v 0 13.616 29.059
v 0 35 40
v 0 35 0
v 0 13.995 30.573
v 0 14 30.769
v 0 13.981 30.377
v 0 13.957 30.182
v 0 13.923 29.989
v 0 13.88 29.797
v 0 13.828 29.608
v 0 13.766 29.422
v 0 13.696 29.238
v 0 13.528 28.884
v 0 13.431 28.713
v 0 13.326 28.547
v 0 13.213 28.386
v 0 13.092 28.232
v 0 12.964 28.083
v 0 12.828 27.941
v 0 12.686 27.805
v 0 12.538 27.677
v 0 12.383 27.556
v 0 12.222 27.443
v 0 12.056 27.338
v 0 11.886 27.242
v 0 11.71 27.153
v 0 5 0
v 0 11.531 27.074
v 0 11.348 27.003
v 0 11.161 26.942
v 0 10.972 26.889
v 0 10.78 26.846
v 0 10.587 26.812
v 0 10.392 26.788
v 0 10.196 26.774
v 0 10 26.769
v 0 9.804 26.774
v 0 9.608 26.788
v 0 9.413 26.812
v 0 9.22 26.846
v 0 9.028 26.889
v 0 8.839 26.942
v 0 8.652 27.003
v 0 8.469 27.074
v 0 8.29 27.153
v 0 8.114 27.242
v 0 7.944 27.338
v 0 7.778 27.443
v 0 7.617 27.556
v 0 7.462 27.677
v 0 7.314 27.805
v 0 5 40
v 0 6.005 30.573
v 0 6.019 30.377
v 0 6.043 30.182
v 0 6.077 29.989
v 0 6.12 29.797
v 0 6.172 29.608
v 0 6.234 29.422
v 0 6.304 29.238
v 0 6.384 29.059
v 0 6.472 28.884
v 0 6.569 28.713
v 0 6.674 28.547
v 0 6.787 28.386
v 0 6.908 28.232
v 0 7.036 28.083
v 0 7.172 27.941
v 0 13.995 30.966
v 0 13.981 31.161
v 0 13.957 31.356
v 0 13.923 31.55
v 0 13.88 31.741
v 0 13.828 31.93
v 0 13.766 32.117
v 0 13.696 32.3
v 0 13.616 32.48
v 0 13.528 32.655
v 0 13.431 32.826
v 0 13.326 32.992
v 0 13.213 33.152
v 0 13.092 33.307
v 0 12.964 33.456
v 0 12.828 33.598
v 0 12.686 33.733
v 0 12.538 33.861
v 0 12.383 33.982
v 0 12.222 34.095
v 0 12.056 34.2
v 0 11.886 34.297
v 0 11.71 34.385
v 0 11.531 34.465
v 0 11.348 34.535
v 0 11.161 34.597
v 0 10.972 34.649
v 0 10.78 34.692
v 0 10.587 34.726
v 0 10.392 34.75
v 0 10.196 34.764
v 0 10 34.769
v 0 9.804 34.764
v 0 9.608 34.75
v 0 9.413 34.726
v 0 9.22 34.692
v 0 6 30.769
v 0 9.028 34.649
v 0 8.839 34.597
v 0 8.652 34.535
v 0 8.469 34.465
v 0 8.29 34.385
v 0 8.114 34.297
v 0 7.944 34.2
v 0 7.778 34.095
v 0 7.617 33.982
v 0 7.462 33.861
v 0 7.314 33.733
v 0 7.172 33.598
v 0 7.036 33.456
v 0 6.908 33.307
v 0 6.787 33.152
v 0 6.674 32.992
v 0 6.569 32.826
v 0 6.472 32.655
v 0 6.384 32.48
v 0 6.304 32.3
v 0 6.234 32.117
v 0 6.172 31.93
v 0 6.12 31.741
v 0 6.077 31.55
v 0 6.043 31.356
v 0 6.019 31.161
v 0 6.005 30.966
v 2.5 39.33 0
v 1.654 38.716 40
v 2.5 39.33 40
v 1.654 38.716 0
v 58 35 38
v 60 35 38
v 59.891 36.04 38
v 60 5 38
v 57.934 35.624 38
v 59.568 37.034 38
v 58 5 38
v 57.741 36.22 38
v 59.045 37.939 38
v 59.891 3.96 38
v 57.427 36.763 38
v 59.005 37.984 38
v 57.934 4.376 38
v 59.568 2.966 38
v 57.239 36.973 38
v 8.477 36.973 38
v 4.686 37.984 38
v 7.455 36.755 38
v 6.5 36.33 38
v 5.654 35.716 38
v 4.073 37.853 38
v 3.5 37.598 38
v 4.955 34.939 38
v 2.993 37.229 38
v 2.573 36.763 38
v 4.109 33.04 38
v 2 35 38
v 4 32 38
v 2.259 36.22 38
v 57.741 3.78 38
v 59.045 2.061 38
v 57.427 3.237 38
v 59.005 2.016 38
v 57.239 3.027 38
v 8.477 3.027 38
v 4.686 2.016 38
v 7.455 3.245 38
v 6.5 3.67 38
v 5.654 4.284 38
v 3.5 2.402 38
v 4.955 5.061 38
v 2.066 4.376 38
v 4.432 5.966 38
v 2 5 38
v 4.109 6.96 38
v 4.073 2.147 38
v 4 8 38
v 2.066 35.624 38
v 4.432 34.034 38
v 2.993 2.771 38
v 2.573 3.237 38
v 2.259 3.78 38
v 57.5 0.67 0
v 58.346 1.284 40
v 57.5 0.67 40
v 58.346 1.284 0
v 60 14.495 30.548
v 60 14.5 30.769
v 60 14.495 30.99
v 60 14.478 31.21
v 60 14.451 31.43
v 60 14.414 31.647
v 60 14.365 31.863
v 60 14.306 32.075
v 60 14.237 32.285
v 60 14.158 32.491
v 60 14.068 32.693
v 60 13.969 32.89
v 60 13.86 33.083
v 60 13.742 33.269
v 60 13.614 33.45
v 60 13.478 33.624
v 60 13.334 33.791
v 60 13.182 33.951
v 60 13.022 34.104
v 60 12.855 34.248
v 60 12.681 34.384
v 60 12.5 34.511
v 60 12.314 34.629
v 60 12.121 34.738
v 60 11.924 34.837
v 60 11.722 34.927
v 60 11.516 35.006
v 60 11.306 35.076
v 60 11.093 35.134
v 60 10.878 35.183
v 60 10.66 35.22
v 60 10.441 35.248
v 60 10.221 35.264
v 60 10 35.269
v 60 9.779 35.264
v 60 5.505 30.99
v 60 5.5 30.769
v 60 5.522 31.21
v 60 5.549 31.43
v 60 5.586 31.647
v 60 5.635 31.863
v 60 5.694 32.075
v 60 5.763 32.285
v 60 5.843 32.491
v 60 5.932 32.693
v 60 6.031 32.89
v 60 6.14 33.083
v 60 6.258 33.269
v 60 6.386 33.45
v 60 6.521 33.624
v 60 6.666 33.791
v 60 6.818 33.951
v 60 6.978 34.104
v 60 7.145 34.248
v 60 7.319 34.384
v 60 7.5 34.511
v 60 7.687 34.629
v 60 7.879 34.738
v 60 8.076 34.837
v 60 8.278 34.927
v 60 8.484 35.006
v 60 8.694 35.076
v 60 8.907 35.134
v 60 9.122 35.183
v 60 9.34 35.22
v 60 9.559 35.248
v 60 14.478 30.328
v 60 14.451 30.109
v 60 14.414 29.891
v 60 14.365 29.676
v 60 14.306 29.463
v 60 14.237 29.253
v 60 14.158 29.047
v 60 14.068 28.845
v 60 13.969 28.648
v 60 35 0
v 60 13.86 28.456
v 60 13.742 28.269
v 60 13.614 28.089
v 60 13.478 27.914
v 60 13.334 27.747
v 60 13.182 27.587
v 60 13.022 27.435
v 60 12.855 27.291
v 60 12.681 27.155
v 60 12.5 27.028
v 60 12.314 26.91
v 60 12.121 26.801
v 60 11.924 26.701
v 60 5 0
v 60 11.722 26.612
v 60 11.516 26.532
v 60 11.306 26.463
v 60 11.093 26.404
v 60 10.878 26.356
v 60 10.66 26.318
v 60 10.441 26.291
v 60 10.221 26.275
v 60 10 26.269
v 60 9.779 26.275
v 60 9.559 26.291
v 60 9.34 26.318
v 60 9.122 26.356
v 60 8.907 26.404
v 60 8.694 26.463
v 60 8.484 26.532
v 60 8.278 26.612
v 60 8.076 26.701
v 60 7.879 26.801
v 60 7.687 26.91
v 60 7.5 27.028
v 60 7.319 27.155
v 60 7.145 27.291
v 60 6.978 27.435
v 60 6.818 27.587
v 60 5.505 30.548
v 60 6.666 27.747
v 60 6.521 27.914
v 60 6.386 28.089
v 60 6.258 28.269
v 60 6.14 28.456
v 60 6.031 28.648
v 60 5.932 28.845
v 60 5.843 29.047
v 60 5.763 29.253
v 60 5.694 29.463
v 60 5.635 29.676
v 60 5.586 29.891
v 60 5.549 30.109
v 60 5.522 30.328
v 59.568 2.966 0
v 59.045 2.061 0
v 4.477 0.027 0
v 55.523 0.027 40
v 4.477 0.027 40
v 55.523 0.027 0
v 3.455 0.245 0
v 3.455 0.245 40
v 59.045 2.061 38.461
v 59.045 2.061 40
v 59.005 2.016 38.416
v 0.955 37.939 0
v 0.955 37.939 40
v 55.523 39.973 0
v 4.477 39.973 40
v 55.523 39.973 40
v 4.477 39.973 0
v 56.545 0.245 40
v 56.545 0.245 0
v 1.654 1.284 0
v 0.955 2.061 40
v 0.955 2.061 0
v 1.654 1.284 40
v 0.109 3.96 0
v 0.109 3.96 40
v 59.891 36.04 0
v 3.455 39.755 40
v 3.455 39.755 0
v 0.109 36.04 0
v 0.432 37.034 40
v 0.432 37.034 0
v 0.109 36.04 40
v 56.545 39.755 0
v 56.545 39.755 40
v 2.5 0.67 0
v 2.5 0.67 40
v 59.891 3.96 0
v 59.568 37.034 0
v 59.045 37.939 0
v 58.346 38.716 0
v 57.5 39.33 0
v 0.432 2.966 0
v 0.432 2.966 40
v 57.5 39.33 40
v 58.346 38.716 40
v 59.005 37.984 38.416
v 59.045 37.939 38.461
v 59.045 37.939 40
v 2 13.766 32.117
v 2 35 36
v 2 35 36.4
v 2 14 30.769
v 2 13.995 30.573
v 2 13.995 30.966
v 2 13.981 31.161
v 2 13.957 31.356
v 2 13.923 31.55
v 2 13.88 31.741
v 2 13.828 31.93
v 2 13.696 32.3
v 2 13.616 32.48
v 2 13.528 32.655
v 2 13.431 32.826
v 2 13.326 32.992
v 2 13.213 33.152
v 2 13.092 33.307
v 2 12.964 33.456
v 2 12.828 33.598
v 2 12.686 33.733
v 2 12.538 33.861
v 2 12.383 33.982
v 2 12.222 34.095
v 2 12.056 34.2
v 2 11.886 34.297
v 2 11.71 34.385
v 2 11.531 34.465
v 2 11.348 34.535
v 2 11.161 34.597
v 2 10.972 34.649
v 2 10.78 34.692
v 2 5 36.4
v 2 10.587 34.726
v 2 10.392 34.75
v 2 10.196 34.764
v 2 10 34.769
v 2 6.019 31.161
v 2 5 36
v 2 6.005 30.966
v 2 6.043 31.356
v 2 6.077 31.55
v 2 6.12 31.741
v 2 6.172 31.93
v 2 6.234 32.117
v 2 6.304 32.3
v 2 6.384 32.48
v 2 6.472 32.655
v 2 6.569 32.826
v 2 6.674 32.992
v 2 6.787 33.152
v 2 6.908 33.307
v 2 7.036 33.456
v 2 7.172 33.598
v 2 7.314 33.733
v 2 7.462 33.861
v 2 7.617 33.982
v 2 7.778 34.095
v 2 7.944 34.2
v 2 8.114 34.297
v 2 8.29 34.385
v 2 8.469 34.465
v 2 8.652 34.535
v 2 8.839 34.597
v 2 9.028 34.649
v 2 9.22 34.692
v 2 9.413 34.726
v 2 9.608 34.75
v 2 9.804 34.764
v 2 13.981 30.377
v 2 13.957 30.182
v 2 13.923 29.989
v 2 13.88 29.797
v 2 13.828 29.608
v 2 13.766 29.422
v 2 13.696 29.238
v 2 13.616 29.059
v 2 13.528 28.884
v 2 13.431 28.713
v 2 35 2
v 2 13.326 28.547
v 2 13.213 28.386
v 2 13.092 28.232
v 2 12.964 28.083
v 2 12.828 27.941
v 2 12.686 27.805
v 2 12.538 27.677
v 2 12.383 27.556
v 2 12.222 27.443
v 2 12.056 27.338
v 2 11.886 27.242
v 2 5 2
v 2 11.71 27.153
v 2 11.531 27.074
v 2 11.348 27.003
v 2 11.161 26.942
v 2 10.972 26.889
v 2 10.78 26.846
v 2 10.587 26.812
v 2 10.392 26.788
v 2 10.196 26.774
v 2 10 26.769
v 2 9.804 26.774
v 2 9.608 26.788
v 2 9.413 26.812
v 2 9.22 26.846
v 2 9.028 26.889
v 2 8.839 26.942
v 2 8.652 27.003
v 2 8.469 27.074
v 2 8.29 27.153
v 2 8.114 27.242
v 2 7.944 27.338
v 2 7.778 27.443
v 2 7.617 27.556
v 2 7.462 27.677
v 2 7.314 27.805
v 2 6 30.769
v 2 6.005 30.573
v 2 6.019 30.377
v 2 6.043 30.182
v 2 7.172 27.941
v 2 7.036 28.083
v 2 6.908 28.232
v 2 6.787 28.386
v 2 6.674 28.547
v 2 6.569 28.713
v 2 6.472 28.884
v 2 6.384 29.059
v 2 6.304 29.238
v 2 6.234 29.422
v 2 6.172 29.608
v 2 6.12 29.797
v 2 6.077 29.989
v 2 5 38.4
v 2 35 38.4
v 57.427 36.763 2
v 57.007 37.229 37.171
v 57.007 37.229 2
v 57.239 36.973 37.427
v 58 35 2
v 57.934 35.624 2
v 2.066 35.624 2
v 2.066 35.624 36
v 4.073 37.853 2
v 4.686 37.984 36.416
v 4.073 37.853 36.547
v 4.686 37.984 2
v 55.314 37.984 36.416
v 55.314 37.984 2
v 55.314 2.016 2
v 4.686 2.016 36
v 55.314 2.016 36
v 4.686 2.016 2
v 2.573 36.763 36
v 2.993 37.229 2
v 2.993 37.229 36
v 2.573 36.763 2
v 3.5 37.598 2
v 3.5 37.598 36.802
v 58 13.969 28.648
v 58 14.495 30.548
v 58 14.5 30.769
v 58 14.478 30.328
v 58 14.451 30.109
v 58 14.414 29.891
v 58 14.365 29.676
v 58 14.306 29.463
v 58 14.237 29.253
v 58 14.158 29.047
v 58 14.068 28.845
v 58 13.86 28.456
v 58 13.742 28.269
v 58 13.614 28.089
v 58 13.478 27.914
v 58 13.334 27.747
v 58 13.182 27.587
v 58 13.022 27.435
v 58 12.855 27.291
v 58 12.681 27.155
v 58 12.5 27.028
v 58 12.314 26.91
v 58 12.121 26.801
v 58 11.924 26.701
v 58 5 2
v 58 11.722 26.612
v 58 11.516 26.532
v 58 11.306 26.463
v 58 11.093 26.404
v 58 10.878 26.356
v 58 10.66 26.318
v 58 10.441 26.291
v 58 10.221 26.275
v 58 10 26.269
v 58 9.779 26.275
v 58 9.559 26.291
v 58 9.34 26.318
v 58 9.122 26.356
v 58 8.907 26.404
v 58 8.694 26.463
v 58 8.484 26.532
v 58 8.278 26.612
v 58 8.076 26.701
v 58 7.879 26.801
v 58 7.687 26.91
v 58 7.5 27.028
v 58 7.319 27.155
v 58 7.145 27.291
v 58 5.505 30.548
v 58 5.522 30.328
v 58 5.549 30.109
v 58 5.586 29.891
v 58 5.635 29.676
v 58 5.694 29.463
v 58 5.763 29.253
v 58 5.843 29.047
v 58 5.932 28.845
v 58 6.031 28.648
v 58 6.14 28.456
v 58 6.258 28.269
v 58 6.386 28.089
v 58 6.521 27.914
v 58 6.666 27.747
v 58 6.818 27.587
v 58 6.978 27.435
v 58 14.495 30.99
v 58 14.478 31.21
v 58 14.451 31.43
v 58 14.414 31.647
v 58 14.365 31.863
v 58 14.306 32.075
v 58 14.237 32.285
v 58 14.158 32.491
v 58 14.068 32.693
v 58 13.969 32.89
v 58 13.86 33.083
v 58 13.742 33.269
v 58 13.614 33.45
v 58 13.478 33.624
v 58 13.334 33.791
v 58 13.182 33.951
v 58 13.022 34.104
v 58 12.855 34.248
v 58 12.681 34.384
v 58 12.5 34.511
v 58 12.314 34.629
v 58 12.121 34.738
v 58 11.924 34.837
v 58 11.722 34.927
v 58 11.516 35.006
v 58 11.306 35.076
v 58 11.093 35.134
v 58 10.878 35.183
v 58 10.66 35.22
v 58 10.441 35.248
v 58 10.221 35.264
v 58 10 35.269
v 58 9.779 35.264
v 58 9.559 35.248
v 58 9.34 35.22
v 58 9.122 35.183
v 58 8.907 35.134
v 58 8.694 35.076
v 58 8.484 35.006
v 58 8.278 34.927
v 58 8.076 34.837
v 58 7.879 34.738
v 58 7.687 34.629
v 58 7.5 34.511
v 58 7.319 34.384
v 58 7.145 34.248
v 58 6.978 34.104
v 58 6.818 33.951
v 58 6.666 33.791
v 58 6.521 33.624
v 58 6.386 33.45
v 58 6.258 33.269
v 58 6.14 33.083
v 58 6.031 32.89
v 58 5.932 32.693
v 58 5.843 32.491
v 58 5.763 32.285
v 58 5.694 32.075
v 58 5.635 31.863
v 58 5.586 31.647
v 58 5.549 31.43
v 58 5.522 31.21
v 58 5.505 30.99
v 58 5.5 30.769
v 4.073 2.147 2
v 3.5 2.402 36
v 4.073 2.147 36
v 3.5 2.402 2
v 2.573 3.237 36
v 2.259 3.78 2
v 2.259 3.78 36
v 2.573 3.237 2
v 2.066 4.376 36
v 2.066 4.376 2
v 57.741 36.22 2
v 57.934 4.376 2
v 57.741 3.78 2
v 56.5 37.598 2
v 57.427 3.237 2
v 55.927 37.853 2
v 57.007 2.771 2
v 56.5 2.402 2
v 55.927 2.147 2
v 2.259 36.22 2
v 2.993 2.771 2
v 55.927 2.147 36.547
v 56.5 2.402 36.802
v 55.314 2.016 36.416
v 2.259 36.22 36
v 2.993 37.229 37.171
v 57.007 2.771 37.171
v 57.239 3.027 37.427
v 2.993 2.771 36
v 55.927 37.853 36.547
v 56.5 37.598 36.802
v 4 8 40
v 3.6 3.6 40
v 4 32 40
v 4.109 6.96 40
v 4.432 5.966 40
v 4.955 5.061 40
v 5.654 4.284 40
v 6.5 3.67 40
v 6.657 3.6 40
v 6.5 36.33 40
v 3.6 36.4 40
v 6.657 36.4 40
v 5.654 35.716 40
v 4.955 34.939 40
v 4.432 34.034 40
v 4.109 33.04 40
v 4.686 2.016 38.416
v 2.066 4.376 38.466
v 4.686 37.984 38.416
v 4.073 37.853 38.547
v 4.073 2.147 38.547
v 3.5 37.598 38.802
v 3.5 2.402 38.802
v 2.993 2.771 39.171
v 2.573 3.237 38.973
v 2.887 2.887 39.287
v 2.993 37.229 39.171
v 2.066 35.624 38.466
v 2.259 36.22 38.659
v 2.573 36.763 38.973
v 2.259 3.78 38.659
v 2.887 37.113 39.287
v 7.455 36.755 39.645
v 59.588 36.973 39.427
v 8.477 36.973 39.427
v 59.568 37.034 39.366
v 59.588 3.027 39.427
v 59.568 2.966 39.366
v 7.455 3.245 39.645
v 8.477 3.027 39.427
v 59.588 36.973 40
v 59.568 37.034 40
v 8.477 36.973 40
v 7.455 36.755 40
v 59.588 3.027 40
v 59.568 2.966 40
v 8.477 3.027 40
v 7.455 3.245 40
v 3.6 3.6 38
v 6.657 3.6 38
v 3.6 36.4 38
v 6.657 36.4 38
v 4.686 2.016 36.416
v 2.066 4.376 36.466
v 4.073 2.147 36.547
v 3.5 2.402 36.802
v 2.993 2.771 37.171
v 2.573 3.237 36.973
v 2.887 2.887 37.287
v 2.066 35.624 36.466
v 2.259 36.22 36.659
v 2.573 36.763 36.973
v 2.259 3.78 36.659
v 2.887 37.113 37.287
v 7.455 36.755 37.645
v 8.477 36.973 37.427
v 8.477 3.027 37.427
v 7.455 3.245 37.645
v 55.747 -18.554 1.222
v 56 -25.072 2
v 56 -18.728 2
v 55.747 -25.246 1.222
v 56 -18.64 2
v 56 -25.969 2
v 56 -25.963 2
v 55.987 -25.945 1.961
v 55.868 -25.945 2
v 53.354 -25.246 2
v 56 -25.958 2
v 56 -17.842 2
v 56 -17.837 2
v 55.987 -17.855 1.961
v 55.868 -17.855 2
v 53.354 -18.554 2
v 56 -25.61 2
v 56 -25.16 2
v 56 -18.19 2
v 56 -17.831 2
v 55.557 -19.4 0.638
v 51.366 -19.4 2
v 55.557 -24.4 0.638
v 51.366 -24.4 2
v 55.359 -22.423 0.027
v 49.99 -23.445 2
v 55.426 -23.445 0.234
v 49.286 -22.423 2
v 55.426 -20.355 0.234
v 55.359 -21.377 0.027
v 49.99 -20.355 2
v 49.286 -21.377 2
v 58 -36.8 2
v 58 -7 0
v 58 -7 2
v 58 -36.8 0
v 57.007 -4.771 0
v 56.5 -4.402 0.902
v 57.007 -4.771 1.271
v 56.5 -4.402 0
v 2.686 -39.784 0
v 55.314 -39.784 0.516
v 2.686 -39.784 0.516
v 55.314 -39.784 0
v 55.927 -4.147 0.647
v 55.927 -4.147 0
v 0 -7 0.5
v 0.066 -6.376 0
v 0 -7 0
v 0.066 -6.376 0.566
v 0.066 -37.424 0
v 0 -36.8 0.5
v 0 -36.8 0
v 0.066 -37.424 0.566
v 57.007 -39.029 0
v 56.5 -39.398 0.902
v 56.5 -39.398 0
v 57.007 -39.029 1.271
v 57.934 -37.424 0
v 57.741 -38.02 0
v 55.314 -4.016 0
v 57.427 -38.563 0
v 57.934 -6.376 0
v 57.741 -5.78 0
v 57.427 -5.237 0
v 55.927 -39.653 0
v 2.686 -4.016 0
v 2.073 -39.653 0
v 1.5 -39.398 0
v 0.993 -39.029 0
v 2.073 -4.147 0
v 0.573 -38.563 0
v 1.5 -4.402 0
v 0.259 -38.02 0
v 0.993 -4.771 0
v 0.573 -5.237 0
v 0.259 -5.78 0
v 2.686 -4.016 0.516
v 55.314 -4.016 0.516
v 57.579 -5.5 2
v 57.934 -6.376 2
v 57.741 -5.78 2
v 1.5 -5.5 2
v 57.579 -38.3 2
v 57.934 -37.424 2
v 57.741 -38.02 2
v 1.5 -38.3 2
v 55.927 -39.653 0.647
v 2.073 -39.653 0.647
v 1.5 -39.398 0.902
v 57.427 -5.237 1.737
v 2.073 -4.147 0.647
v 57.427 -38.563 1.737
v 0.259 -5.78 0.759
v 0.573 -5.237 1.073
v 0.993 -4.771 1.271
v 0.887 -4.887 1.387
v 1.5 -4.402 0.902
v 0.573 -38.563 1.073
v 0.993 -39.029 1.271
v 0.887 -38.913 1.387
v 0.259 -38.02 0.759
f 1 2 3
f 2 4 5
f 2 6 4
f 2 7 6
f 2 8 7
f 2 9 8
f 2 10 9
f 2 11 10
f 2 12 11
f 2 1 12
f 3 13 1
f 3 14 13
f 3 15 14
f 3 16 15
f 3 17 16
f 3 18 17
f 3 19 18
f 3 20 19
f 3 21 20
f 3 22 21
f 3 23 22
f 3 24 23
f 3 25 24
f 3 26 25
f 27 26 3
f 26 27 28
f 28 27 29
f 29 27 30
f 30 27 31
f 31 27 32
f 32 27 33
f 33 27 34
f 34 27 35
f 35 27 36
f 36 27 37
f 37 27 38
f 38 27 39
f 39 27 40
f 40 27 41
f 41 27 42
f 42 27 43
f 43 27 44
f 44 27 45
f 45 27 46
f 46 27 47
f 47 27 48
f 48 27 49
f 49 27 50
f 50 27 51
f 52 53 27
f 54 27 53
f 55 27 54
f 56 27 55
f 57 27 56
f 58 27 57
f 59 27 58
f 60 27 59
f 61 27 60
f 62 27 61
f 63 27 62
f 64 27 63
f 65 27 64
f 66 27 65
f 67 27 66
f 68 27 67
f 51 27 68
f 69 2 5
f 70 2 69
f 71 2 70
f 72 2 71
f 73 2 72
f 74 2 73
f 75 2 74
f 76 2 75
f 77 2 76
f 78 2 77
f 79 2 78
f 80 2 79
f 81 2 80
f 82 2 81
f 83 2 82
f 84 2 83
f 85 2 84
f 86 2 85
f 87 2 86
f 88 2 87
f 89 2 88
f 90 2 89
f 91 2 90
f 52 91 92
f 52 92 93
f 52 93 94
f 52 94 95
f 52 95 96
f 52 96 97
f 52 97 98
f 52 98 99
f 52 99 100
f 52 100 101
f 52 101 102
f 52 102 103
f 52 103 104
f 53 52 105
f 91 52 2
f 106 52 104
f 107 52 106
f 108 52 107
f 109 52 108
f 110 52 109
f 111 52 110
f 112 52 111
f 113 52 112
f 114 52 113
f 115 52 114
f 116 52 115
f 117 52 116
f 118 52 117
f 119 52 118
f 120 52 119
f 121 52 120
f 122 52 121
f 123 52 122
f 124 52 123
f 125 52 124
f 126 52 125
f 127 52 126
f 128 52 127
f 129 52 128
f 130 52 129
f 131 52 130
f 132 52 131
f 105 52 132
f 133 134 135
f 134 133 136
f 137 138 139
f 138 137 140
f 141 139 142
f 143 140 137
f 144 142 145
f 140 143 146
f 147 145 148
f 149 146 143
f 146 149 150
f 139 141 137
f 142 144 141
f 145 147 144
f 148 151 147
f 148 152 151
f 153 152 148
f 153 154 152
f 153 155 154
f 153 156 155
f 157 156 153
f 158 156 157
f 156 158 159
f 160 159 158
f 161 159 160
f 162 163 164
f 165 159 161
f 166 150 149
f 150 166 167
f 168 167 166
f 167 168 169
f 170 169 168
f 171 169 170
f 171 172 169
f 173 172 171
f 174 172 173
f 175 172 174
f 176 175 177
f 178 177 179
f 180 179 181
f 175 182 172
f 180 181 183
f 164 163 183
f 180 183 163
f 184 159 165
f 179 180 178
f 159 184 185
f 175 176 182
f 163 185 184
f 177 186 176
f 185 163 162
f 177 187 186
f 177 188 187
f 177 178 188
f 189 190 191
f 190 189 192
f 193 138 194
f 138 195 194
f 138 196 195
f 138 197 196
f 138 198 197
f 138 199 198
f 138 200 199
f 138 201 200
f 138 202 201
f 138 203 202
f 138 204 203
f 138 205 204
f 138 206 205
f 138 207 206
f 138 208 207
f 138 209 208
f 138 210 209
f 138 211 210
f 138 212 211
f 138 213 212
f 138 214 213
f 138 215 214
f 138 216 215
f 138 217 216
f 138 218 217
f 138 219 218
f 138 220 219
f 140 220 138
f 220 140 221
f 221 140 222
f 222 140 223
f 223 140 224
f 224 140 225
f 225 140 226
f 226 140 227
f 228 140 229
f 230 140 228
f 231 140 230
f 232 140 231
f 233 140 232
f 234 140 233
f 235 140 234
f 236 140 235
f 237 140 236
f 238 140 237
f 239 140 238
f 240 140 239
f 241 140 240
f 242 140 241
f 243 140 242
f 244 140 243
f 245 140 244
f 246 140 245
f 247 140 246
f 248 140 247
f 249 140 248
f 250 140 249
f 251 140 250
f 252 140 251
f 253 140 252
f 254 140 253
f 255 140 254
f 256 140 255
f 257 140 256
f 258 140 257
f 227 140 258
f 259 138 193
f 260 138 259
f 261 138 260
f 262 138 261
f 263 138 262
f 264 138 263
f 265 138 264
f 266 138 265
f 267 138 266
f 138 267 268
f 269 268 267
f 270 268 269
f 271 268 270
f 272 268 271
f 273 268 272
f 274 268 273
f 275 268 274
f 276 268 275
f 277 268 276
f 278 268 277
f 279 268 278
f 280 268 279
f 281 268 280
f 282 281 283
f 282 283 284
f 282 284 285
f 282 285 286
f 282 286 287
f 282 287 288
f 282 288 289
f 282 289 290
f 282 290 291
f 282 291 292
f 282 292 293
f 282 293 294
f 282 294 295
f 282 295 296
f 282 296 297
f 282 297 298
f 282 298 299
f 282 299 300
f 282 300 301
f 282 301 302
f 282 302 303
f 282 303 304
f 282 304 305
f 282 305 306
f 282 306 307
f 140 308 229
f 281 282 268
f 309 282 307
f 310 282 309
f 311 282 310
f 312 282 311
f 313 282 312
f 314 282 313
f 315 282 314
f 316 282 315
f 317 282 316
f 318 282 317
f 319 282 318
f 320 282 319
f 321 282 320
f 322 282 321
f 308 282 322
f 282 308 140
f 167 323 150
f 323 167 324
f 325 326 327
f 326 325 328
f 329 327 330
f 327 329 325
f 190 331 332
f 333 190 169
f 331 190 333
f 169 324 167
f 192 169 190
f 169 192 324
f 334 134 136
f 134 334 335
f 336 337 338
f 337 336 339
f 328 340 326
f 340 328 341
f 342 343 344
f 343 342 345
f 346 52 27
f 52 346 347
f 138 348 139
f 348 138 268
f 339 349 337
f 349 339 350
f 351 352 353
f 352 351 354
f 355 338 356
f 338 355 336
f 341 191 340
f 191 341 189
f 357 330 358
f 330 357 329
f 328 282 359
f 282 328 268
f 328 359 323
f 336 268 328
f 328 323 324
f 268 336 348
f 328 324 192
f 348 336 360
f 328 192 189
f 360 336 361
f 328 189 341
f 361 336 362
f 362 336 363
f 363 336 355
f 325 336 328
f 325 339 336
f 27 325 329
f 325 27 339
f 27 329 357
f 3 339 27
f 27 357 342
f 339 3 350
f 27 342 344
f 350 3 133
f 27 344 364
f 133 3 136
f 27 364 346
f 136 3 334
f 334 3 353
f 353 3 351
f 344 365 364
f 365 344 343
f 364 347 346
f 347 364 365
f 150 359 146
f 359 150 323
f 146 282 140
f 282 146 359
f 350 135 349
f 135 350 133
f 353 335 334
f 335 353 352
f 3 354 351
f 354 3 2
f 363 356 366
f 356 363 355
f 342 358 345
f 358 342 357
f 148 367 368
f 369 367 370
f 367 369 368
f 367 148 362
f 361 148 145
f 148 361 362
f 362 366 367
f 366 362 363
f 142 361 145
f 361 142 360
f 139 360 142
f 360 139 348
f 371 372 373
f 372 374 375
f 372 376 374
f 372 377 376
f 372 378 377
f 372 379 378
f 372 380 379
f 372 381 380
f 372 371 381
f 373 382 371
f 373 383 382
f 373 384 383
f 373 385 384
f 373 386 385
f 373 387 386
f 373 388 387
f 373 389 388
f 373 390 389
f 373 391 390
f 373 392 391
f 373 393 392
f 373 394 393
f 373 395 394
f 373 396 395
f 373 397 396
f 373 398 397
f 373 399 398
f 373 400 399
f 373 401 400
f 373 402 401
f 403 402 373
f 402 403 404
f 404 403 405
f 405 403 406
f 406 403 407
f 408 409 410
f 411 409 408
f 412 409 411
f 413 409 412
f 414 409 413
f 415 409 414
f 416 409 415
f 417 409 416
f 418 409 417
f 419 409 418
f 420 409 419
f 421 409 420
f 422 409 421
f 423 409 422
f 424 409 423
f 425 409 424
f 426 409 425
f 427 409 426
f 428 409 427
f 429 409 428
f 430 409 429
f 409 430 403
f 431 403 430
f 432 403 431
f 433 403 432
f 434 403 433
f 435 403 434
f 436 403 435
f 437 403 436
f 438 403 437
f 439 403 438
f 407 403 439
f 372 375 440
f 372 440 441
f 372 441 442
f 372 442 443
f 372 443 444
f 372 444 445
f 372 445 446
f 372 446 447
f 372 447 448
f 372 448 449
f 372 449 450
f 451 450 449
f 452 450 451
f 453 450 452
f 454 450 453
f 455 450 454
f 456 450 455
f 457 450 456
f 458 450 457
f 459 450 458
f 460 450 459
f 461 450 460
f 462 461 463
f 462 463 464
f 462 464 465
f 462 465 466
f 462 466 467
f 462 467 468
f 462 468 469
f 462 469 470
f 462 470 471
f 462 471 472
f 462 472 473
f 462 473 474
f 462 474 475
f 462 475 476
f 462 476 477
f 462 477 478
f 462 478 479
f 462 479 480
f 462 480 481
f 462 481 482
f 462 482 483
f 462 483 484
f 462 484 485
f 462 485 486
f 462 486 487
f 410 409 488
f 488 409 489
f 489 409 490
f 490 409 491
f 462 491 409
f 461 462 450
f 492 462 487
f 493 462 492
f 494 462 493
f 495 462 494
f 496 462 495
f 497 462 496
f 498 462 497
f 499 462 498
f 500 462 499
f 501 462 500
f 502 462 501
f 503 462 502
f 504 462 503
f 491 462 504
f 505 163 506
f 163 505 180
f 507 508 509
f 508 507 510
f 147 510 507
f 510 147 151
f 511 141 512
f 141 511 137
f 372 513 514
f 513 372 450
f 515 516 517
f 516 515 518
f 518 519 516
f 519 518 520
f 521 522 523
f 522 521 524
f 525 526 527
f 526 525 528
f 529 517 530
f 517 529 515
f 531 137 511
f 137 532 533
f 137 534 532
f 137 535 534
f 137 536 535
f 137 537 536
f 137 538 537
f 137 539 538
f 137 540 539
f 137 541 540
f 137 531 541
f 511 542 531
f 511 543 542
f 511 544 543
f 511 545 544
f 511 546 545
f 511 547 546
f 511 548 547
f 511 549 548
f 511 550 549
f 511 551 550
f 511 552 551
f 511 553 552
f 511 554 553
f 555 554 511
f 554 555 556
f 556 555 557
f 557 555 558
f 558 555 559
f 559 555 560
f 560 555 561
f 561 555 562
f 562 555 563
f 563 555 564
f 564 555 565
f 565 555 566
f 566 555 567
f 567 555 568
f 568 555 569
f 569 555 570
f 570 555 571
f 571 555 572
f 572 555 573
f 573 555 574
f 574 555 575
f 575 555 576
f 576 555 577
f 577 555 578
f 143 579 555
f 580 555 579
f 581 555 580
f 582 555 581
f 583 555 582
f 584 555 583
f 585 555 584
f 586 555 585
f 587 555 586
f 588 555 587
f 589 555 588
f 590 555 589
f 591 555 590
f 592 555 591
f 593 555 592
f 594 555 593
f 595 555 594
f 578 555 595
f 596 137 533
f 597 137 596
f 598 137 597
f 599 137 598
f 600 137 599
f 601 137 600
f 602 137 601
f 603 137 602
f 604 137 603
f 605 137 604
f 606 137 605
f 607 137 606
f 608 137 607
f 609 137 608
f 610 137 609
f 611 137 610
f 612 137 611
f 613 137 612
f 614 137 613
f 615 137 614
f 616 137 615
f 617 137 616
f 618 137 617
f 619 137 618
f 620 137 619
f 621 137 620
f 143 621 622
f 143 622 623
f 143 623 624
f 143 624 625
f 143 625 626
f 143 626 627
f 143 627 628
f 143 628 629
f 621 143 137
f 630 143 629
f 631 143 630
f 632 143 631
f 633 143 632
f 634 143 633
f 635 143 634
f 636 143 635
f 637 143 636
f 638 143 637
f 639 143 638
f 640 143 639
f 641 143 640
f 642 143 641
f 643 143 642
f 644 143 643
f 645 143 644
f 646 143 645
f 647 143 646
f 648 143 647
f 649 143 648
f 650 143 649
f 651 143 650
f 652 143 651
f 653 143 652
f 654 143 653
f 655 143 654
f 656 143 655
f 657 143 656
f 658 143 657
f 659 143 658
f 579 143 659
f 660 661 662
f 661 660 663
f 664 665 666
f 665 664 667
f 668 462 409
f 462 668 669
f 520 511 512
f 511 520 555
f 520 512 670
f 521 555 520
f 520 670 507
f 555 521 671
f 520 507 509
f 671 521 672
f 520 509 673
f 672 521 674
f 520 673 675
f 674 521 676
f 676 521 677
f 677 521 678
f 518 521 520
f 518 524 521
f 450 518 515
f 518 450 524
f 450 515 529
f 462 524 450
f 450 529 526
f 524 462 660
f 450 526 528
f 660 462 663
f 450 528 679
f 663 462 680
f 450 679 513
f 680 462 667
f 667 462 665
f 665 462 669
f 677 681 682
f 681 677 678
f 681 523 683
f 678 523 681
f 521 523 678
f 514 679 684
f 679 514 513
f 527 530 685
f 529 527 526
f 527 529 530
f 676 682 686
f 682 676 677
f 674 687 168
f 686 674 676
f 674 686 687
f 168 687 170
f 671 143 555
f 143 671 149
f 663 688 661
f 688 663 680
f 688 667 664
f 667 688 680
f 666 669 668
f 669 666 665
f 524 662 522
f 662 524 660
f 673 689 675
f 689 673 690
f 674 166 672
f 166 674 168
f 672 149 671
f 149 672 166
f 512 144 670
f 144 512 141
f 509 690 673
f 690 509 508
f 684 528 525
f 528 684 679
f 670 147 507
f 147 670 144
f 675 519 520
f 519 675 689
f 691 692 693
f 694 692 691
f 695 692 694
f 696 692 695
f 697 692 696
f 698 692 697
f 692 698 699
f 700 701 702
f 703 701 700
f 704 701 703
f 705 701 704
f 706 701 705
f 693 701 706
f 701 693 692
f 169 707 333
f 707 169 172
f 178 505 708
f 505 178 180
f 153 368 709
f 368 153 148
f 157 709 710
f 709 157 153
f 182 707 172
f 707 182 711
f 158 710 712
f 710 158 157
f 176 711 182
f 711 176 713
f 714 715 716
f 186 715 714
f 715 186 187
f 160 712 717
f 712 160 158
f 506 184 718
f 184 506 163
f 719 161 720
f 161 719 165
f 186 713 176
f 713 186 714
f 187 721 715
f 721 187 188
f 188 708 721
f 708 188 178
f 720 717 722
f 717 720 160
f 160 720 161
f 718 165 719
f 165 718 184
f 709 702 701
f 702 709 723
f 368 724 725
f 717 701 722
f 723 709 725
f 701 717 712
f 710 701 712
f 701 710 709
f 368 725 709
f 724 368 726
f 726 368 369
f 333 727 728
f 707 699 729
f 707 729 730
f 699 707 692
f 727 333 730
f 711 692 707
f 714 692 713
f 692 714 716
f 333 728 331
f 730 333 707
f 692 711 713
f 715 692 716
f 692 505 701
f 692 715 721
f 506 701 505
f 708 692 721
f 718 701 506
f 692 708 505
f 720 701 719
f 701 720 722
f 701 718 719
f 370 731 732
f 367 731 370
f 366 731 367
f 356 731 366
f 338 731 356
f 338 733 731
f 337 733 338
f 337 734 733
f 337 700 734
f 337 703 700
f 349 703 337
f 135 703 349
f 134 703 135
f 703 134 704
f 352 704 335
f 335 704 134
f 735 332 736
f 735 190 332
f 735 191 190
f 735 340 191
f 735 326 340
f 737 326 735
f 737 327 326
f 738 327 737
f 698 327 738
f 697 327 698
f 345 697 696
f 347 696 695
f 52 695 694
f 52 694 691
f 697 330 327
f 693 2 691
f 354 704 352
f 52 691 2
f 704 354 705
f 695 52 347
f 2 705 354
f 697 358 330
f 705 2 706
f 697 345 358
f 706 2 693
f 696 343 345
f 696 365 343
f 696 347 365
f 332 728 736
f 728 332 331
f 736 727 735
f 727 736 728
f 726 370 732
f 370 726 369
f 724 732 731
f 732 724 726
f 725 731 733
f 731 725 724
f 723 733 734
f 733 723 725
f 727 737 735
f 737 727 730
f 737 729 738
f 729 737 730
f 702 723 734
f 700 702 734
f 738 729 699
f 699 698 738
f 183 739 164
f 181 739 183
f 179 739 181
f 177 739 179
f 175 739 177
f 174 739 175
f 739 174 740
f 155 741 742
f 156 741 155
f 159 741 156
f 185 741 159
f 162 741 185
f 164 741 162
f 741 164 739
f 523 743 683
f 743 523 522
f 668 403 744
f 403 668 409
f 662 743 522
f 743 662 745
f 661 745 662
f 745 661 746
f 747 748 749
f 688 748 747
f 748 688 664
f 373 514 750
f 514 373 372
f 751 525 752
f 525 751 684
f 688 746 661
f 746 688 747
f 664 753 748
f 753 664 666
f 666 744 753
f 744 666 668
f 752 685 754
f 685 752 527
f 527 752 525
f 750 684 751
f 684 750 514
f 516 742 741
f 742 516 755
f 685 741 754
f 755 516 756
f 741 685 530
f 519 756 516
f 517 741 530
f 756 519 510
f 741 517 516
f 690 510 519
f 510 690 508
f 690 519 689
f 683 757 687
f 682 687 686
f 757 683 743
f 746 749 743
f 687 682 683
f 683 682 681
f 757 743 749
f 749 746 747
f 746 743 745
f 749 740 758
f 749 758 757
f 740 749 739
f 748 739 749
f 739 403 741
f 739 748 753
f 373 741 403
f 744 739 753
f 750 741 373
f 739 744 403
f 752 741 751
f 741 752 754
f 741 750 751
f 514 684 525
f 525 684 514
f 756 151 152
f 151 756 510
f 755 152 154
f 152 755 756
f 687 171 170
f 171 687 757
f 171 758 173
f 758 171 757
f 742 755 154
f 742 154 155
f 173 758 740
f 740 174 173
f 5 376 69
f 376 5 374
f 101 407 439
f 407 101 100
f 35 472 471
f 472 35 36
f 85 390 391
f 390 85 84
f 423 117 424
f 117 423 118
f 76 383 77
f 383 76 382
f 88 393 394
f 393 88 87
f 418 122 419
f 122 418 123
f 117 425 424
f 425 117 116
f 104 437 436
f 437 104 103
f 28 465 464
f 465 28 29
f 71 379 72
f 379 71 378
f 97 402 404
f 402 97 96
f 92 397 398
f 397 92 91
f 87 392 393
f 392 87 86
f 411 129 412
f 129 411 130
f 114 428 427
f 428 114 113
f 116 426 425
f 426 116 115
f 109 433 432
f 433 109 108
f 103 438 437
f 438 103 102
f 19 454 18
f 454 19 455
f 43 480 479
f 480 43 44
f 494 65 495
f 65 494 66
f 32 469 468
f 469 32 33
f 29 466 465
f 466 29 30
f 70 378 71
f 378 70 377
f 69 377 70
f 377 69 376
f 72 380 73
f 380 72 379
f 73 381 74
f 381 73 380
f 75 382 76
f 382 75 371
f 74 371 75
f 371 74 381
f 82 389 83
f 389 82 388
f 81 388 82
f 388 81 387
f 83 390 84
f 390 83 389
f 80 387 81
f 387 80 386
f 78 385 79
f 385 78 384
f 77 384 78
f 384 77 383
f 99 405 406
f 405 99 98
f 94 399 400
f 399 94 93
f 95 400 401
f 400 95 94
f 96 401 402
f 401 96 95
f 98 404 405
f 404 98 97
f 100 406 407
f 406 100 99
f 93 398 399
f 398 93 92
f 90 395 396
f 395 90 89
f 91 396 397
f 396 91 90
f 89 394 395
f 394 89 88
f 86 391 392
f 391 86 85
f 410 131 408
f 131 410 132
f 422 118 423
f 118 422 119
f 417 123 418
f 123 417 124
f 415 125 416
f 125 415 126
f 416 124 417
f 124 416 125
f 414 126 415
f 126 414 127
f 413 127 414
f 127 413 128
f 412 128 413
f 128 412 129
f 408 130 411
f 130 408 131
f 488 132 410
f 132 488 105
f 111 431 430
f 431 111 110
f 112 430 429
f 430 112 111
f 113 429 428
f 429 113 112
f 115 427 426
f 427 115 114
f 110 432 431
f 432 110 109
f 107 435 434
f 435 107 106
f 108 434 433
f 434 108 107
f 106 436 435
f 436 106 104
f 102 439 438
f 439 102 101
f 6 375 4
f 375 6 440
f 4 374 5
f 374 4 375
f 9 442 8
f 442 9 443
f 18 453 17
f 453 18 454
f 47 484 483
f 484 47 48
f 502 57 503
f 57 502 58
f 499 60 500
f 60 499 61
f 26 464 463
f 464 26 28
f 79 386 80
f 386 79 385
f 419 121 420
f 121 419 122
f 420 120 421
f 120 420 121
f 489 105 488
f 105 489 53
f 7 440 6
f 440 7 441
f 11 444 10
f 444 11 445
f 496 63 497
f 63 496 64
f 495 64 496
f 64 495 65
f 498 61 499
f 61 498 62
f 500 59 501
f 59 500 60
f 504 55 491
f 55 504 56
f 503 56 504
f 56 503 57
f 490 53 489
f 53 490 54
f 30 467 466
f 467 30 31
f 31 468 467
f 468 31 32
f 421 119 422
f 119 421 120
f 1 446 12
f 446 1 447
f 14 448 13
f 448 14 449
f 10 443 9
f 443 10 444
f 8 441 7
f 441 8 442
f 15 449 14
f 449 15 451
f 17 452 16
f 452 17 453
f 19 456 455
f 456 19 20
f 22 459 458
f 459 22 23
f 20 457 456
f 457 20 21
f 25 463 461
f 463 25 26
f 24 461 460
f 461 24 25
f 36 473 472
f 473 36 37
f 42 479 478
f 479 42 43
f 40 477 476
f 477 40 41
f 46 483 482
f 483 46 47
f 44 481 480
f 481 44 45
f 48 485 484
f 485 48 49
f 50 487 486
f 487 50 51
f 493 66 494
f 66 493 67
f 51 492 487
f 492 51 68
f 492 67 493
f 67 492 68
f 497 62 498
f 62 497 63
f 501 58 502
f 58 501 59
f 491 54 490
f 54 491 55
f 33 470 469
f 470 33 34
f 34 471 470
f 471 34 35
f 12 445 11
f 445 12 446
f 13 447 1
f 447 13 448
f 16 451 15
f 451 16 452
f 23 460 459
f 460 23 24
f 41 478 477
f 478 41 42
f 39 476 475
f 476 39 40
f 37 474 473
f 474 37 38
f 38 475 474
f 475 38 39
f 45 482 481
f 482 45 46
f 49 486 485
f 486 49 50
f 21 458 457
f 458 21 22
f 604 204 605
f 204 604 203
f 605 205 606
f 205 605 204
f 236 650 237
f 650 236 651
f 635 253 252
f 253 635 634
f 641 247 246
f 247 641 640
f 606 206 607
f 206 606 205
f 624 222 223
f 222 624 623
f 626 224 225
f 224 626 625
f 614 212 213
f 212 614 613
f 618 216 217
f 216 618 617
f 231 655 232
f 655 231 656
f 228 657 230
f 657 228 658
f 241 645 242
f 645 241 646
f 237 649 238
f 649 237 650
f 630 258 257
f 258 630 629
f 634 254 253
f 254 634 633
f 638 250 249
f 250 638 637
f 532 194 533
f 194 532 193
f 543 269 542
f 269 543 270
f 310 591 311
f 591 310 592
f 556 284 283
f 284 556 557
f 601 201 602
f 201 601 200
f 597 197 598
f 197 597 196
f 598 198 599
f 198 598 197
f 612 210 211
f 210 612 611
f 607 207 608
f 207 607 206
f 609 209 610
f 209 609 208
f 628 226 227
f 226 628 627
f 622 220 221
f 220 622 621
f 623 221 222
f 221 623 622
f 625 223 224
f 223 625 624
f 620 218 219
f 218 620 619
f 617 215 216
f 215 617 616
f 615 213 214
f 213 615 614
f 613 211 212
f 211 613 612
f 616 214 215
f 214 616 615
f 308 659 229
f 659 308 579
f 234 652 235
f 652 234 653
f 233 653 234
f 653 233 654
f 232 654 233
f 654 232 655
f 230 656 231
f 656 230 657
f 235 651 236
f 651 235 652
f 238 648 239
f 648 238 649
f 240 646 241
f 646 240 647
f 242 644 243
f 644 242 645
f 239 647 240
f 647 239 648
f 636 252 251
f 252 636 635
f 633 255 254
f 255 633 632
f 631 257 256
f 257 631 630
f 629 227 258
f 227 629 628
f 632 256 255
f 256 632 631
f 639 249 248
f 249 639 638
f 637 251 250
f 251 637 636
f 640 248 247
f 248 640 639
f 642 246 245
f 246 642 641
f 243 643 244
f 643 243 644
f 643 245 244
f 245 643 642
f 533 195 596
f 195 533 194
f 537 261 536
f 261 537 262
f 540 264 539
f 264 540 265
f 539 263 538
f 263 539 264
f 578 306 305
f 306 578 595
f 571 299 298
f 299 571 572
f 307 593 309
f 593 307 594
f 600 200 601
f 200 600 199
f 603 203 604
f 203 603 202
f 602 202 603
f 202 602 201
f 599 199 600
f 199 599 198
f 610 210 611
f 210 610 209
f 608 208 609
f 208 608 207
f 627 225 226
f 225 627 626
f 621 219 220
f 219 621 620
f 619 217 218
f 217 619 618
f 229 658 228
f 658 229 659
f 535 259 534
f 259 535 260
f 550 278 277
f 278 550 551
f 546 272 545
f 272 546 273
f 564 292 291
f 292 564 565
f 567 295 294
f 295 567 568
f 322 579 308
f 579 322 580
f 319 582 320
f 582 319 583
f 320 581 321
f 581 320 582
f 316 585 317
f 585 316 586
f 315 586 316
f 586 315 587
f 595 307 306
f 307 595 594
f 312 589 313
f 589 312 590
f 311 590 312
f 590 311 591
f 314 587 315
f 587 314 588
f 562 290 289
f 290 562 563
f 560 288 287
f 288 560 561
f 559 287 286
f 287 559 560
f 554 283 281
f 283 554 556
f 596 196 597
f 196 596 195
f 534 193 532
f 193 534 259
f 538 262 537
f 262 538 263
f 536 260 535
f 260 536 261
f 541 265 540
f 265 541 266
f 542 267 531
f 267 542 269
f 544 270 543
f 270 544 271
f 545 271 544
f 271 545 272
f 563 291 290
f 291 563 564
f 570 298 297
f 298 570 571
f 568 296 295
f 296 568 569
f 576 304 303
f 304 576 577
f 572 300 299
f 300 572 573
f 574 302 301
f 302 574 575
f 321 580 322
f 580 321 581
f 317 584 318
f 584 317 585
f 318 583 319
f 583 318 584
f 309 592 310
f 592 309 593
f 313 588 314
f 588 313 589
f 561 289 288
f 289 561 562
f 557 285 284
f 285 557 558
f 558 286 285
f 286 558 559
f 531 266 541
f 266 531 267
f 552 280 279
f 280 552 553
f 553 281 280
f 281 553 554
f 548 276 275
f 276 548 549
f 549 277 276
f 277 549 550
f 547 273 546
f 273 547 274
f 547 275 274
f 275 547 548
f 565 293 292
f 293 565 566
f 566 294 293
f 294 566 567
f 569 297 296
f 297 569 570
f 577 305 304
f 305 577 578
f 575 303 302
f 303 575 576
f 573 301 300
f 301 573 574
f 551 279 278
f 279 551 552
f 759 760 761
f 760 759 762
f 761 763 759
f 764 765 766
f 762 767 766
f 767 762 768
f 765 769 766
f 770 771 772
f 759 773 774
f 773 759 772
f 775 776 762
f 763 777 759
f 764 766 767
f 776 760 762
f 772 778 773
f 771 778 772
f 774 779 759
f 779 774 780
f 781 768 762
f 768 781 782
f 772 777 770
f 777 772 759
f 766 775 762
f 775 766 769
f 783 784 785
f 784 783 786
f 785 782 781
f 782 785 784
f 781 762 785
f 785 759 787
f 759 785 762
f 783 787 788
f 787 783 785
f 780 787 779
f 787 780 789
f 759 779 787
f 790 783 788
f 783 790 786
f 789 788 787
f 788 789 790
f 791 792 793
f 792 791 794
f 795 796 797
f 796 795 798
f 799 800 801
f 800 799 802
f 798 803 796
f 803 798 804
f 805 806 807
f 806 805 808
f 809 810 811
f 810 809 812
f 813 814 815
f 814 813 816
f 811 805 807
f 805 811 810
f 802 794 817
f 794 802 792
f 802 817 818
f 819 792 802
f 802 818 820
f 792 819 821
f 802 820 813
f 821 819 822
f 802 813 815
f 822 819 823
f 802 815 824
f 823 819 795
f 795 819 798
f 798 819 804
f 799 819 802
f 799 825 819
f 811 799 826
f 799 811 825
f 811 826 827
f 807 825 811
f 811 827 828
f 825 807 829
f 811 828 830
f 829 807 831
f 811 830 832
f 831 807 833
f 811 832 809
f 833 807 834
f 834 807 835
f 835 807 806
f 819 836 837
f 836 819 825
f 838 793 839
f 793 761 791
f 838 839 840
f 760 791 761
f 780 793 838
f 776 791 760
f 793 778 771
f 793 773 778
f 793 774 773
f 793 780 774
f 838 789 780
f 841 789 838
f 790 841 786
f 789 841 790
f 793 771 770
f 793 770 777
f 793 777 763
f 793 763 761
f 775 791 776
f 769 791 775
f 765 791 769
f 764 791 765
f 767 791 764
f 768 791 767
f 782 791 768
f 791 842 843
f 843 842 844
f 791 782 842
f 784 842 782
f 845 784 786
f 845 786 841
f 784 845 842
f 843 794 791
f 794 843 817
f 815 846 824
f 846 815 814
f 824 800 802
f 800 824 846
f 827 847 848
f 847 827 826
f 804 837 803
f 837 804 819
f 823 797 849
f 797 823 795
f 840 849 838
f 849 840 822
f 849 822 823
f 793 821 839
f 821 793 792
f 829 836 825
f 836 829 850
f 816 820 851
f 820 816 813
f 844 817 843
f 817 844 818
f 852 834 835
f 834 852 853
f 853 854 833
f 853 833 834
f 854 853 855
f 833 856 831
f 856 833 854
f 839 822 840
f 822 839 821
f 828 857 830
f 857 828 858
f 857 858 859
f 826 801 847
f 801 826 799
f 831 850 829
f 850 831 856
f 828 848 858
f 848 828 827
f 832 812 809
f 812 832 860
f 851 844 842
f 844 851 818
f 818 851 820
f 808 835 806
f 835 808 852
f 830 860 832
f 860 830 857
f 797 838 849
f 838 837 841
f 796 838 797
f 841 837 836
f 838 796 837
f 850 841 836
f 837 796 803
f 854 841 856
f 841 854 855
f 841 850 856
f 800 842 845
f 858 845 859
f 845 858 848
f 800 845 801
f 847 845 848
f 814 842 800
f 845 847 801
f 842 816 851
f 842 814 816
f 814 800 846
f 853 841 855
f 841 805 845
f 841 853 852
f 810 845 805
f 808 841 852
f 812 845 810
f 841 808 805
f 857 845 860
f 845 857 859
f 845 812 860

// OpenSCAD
itemsShown="both"; // [both,box,lid]
boxLength=60;
boxWidth=40;
boxHeight=40;
cornerRadius=5;
wallThickness=2;
bottomThickness=2;
lidThickness=2;
lidClearance=0.2;
lidEdgeThickness=0.5;
dLoch = 8;
dLochStrom = 9;
dLochKabel = 4;
// Notch in the lid
withNotch=true;
$fn = 128;

showLid();
showBoxAll();

module showBoxAll() {
    difference() 
    {
        showBox();
        rotate([90,0,90]){

            translate([boxWidth/4,boxHeight/1.3,-0.5])
                cylinder(10+1,dLoch/2,dLoch/2);

            translate([boxWidth/4,boxHeight/1.3,boxLength-0.5-wallThickness])
                cylinder(10+1,dLochStrom/2,dLochStrom/2);
        }
    }
}
module showLid(){
	translate ([0, -2*wallThickness, 0]) 
	roundBoxLid(l=boxLength-wallThickness,
				w=boxWidth-2*wallThickness-lidClearance,
				h=lidThickness,
				et=lidEdgeThickness,
				r=cornerRadius-wallThickness,
				notch=withNotch);
}

module showBox(){
	round_box(l=boxLength,
			  w=boxWidth,
			  h=boxHeight,
			  bt=bottomThickness,
			  wt=wallThickness,
			  lt=lidThickness,
			  r=cornerRadius);
}

module round_box(l=40,w=30,h=30,bt=2,wt=2,lt=2,r=5,){
	difference() { 
		round_cube(l=l,w=w,h=h-lt,r=r);
		translate ([wt, wt, bt]) 
		round_cube(l=l-wt*2,w=w-wt*2,h=h,r=r-wt);
	}
	roundBoxRim();
	translate ([0, 0, -wt]) roundBoxRim();
}

module roundBoxRim(l=boxLength,
				   w=boxWidth,
				   h=boxHeight,
				   et=lidEdgeThickness,
				   r=cornerRadius,
				   wt=wallThickness,
				   lt=lidThickness){
	difference() { 
		translate ([0, 0, h-lt]) 
		round_cube(l=l,w=w,h=lt,r=r);
		translate ([wt+lt,wt+lt-et*2,h-lt-0.1]) 
		round_cube(l=l*2,w=w-2*(wt+lt)+4*et,h=lt+0.2,r=r-wt+lt);

		//subtract out a lid to make the ledge
		translate ([wt, w-wt, h-lt-0.1])
		roundBoxLid(l=l*2,w=w-2*wt,h=lt+0.1,wt=wt,t=lt,et=0.5,r=r-wt,notch=false);
	}
}

module roundBoxLid(l=40,w=30,h=3,wt=2,t=2,et=0.5,r=5,notch=true){
	translate ([l, 0, 0]) 
	rotate (a = [0, 0, 180]) 
	difference(){
		round_cube(l=l,w=w,h=h,t=t,r=r);

		translate ([-1, 0, et]) rotate (a = [45, 0, 0])  cube (size = [l+2, h*2, h*2]); 
		translate ([-1, w, et]) rotate (a = [45, 0, 0])  cube (size = [l+2, h*2, h*2]); 
		translate ([l, -1, et]) rotate (a = [45, 0, 90]) cube (size = [w+2, h*2, h*2]); 
		if (notch==true){
			translate([2,w/2,h+0.001]) thumbNotch(10/2,72,t);
		}
	}
}

module thumbNotch(
	thumbR=12/2,
	angle=72,
	notchHeight=2){

	size=10*thumbR;

	rotate([0,0,90])
	difference(){
		translate([0,
					(thumbR*sin(angle)-notchHeight)/tan(angle),
					 thumbR*sin(angle)-notchHeight])
		rotate([angle,0,0])
		cylinder(r=thumbR,h=size,$fn=30);

		translate([-size,-size,0])
		cube(size*2);
	}
}

module round_cube(l=40,w=30,h=20,r=5,t=0,$fn=30){
	hull(){ 
		translate ([r, r, 0]) cylinder (h = h, r=r);
		translate ([r, w-r, 0]) cylinder (h = h, r=r);
		translate ([l-r,w-r, 0]) cylinder (h = h, r=r);
		translate ([l-r, r, 0]) cylinder (h = h, r=r);
	}
}
